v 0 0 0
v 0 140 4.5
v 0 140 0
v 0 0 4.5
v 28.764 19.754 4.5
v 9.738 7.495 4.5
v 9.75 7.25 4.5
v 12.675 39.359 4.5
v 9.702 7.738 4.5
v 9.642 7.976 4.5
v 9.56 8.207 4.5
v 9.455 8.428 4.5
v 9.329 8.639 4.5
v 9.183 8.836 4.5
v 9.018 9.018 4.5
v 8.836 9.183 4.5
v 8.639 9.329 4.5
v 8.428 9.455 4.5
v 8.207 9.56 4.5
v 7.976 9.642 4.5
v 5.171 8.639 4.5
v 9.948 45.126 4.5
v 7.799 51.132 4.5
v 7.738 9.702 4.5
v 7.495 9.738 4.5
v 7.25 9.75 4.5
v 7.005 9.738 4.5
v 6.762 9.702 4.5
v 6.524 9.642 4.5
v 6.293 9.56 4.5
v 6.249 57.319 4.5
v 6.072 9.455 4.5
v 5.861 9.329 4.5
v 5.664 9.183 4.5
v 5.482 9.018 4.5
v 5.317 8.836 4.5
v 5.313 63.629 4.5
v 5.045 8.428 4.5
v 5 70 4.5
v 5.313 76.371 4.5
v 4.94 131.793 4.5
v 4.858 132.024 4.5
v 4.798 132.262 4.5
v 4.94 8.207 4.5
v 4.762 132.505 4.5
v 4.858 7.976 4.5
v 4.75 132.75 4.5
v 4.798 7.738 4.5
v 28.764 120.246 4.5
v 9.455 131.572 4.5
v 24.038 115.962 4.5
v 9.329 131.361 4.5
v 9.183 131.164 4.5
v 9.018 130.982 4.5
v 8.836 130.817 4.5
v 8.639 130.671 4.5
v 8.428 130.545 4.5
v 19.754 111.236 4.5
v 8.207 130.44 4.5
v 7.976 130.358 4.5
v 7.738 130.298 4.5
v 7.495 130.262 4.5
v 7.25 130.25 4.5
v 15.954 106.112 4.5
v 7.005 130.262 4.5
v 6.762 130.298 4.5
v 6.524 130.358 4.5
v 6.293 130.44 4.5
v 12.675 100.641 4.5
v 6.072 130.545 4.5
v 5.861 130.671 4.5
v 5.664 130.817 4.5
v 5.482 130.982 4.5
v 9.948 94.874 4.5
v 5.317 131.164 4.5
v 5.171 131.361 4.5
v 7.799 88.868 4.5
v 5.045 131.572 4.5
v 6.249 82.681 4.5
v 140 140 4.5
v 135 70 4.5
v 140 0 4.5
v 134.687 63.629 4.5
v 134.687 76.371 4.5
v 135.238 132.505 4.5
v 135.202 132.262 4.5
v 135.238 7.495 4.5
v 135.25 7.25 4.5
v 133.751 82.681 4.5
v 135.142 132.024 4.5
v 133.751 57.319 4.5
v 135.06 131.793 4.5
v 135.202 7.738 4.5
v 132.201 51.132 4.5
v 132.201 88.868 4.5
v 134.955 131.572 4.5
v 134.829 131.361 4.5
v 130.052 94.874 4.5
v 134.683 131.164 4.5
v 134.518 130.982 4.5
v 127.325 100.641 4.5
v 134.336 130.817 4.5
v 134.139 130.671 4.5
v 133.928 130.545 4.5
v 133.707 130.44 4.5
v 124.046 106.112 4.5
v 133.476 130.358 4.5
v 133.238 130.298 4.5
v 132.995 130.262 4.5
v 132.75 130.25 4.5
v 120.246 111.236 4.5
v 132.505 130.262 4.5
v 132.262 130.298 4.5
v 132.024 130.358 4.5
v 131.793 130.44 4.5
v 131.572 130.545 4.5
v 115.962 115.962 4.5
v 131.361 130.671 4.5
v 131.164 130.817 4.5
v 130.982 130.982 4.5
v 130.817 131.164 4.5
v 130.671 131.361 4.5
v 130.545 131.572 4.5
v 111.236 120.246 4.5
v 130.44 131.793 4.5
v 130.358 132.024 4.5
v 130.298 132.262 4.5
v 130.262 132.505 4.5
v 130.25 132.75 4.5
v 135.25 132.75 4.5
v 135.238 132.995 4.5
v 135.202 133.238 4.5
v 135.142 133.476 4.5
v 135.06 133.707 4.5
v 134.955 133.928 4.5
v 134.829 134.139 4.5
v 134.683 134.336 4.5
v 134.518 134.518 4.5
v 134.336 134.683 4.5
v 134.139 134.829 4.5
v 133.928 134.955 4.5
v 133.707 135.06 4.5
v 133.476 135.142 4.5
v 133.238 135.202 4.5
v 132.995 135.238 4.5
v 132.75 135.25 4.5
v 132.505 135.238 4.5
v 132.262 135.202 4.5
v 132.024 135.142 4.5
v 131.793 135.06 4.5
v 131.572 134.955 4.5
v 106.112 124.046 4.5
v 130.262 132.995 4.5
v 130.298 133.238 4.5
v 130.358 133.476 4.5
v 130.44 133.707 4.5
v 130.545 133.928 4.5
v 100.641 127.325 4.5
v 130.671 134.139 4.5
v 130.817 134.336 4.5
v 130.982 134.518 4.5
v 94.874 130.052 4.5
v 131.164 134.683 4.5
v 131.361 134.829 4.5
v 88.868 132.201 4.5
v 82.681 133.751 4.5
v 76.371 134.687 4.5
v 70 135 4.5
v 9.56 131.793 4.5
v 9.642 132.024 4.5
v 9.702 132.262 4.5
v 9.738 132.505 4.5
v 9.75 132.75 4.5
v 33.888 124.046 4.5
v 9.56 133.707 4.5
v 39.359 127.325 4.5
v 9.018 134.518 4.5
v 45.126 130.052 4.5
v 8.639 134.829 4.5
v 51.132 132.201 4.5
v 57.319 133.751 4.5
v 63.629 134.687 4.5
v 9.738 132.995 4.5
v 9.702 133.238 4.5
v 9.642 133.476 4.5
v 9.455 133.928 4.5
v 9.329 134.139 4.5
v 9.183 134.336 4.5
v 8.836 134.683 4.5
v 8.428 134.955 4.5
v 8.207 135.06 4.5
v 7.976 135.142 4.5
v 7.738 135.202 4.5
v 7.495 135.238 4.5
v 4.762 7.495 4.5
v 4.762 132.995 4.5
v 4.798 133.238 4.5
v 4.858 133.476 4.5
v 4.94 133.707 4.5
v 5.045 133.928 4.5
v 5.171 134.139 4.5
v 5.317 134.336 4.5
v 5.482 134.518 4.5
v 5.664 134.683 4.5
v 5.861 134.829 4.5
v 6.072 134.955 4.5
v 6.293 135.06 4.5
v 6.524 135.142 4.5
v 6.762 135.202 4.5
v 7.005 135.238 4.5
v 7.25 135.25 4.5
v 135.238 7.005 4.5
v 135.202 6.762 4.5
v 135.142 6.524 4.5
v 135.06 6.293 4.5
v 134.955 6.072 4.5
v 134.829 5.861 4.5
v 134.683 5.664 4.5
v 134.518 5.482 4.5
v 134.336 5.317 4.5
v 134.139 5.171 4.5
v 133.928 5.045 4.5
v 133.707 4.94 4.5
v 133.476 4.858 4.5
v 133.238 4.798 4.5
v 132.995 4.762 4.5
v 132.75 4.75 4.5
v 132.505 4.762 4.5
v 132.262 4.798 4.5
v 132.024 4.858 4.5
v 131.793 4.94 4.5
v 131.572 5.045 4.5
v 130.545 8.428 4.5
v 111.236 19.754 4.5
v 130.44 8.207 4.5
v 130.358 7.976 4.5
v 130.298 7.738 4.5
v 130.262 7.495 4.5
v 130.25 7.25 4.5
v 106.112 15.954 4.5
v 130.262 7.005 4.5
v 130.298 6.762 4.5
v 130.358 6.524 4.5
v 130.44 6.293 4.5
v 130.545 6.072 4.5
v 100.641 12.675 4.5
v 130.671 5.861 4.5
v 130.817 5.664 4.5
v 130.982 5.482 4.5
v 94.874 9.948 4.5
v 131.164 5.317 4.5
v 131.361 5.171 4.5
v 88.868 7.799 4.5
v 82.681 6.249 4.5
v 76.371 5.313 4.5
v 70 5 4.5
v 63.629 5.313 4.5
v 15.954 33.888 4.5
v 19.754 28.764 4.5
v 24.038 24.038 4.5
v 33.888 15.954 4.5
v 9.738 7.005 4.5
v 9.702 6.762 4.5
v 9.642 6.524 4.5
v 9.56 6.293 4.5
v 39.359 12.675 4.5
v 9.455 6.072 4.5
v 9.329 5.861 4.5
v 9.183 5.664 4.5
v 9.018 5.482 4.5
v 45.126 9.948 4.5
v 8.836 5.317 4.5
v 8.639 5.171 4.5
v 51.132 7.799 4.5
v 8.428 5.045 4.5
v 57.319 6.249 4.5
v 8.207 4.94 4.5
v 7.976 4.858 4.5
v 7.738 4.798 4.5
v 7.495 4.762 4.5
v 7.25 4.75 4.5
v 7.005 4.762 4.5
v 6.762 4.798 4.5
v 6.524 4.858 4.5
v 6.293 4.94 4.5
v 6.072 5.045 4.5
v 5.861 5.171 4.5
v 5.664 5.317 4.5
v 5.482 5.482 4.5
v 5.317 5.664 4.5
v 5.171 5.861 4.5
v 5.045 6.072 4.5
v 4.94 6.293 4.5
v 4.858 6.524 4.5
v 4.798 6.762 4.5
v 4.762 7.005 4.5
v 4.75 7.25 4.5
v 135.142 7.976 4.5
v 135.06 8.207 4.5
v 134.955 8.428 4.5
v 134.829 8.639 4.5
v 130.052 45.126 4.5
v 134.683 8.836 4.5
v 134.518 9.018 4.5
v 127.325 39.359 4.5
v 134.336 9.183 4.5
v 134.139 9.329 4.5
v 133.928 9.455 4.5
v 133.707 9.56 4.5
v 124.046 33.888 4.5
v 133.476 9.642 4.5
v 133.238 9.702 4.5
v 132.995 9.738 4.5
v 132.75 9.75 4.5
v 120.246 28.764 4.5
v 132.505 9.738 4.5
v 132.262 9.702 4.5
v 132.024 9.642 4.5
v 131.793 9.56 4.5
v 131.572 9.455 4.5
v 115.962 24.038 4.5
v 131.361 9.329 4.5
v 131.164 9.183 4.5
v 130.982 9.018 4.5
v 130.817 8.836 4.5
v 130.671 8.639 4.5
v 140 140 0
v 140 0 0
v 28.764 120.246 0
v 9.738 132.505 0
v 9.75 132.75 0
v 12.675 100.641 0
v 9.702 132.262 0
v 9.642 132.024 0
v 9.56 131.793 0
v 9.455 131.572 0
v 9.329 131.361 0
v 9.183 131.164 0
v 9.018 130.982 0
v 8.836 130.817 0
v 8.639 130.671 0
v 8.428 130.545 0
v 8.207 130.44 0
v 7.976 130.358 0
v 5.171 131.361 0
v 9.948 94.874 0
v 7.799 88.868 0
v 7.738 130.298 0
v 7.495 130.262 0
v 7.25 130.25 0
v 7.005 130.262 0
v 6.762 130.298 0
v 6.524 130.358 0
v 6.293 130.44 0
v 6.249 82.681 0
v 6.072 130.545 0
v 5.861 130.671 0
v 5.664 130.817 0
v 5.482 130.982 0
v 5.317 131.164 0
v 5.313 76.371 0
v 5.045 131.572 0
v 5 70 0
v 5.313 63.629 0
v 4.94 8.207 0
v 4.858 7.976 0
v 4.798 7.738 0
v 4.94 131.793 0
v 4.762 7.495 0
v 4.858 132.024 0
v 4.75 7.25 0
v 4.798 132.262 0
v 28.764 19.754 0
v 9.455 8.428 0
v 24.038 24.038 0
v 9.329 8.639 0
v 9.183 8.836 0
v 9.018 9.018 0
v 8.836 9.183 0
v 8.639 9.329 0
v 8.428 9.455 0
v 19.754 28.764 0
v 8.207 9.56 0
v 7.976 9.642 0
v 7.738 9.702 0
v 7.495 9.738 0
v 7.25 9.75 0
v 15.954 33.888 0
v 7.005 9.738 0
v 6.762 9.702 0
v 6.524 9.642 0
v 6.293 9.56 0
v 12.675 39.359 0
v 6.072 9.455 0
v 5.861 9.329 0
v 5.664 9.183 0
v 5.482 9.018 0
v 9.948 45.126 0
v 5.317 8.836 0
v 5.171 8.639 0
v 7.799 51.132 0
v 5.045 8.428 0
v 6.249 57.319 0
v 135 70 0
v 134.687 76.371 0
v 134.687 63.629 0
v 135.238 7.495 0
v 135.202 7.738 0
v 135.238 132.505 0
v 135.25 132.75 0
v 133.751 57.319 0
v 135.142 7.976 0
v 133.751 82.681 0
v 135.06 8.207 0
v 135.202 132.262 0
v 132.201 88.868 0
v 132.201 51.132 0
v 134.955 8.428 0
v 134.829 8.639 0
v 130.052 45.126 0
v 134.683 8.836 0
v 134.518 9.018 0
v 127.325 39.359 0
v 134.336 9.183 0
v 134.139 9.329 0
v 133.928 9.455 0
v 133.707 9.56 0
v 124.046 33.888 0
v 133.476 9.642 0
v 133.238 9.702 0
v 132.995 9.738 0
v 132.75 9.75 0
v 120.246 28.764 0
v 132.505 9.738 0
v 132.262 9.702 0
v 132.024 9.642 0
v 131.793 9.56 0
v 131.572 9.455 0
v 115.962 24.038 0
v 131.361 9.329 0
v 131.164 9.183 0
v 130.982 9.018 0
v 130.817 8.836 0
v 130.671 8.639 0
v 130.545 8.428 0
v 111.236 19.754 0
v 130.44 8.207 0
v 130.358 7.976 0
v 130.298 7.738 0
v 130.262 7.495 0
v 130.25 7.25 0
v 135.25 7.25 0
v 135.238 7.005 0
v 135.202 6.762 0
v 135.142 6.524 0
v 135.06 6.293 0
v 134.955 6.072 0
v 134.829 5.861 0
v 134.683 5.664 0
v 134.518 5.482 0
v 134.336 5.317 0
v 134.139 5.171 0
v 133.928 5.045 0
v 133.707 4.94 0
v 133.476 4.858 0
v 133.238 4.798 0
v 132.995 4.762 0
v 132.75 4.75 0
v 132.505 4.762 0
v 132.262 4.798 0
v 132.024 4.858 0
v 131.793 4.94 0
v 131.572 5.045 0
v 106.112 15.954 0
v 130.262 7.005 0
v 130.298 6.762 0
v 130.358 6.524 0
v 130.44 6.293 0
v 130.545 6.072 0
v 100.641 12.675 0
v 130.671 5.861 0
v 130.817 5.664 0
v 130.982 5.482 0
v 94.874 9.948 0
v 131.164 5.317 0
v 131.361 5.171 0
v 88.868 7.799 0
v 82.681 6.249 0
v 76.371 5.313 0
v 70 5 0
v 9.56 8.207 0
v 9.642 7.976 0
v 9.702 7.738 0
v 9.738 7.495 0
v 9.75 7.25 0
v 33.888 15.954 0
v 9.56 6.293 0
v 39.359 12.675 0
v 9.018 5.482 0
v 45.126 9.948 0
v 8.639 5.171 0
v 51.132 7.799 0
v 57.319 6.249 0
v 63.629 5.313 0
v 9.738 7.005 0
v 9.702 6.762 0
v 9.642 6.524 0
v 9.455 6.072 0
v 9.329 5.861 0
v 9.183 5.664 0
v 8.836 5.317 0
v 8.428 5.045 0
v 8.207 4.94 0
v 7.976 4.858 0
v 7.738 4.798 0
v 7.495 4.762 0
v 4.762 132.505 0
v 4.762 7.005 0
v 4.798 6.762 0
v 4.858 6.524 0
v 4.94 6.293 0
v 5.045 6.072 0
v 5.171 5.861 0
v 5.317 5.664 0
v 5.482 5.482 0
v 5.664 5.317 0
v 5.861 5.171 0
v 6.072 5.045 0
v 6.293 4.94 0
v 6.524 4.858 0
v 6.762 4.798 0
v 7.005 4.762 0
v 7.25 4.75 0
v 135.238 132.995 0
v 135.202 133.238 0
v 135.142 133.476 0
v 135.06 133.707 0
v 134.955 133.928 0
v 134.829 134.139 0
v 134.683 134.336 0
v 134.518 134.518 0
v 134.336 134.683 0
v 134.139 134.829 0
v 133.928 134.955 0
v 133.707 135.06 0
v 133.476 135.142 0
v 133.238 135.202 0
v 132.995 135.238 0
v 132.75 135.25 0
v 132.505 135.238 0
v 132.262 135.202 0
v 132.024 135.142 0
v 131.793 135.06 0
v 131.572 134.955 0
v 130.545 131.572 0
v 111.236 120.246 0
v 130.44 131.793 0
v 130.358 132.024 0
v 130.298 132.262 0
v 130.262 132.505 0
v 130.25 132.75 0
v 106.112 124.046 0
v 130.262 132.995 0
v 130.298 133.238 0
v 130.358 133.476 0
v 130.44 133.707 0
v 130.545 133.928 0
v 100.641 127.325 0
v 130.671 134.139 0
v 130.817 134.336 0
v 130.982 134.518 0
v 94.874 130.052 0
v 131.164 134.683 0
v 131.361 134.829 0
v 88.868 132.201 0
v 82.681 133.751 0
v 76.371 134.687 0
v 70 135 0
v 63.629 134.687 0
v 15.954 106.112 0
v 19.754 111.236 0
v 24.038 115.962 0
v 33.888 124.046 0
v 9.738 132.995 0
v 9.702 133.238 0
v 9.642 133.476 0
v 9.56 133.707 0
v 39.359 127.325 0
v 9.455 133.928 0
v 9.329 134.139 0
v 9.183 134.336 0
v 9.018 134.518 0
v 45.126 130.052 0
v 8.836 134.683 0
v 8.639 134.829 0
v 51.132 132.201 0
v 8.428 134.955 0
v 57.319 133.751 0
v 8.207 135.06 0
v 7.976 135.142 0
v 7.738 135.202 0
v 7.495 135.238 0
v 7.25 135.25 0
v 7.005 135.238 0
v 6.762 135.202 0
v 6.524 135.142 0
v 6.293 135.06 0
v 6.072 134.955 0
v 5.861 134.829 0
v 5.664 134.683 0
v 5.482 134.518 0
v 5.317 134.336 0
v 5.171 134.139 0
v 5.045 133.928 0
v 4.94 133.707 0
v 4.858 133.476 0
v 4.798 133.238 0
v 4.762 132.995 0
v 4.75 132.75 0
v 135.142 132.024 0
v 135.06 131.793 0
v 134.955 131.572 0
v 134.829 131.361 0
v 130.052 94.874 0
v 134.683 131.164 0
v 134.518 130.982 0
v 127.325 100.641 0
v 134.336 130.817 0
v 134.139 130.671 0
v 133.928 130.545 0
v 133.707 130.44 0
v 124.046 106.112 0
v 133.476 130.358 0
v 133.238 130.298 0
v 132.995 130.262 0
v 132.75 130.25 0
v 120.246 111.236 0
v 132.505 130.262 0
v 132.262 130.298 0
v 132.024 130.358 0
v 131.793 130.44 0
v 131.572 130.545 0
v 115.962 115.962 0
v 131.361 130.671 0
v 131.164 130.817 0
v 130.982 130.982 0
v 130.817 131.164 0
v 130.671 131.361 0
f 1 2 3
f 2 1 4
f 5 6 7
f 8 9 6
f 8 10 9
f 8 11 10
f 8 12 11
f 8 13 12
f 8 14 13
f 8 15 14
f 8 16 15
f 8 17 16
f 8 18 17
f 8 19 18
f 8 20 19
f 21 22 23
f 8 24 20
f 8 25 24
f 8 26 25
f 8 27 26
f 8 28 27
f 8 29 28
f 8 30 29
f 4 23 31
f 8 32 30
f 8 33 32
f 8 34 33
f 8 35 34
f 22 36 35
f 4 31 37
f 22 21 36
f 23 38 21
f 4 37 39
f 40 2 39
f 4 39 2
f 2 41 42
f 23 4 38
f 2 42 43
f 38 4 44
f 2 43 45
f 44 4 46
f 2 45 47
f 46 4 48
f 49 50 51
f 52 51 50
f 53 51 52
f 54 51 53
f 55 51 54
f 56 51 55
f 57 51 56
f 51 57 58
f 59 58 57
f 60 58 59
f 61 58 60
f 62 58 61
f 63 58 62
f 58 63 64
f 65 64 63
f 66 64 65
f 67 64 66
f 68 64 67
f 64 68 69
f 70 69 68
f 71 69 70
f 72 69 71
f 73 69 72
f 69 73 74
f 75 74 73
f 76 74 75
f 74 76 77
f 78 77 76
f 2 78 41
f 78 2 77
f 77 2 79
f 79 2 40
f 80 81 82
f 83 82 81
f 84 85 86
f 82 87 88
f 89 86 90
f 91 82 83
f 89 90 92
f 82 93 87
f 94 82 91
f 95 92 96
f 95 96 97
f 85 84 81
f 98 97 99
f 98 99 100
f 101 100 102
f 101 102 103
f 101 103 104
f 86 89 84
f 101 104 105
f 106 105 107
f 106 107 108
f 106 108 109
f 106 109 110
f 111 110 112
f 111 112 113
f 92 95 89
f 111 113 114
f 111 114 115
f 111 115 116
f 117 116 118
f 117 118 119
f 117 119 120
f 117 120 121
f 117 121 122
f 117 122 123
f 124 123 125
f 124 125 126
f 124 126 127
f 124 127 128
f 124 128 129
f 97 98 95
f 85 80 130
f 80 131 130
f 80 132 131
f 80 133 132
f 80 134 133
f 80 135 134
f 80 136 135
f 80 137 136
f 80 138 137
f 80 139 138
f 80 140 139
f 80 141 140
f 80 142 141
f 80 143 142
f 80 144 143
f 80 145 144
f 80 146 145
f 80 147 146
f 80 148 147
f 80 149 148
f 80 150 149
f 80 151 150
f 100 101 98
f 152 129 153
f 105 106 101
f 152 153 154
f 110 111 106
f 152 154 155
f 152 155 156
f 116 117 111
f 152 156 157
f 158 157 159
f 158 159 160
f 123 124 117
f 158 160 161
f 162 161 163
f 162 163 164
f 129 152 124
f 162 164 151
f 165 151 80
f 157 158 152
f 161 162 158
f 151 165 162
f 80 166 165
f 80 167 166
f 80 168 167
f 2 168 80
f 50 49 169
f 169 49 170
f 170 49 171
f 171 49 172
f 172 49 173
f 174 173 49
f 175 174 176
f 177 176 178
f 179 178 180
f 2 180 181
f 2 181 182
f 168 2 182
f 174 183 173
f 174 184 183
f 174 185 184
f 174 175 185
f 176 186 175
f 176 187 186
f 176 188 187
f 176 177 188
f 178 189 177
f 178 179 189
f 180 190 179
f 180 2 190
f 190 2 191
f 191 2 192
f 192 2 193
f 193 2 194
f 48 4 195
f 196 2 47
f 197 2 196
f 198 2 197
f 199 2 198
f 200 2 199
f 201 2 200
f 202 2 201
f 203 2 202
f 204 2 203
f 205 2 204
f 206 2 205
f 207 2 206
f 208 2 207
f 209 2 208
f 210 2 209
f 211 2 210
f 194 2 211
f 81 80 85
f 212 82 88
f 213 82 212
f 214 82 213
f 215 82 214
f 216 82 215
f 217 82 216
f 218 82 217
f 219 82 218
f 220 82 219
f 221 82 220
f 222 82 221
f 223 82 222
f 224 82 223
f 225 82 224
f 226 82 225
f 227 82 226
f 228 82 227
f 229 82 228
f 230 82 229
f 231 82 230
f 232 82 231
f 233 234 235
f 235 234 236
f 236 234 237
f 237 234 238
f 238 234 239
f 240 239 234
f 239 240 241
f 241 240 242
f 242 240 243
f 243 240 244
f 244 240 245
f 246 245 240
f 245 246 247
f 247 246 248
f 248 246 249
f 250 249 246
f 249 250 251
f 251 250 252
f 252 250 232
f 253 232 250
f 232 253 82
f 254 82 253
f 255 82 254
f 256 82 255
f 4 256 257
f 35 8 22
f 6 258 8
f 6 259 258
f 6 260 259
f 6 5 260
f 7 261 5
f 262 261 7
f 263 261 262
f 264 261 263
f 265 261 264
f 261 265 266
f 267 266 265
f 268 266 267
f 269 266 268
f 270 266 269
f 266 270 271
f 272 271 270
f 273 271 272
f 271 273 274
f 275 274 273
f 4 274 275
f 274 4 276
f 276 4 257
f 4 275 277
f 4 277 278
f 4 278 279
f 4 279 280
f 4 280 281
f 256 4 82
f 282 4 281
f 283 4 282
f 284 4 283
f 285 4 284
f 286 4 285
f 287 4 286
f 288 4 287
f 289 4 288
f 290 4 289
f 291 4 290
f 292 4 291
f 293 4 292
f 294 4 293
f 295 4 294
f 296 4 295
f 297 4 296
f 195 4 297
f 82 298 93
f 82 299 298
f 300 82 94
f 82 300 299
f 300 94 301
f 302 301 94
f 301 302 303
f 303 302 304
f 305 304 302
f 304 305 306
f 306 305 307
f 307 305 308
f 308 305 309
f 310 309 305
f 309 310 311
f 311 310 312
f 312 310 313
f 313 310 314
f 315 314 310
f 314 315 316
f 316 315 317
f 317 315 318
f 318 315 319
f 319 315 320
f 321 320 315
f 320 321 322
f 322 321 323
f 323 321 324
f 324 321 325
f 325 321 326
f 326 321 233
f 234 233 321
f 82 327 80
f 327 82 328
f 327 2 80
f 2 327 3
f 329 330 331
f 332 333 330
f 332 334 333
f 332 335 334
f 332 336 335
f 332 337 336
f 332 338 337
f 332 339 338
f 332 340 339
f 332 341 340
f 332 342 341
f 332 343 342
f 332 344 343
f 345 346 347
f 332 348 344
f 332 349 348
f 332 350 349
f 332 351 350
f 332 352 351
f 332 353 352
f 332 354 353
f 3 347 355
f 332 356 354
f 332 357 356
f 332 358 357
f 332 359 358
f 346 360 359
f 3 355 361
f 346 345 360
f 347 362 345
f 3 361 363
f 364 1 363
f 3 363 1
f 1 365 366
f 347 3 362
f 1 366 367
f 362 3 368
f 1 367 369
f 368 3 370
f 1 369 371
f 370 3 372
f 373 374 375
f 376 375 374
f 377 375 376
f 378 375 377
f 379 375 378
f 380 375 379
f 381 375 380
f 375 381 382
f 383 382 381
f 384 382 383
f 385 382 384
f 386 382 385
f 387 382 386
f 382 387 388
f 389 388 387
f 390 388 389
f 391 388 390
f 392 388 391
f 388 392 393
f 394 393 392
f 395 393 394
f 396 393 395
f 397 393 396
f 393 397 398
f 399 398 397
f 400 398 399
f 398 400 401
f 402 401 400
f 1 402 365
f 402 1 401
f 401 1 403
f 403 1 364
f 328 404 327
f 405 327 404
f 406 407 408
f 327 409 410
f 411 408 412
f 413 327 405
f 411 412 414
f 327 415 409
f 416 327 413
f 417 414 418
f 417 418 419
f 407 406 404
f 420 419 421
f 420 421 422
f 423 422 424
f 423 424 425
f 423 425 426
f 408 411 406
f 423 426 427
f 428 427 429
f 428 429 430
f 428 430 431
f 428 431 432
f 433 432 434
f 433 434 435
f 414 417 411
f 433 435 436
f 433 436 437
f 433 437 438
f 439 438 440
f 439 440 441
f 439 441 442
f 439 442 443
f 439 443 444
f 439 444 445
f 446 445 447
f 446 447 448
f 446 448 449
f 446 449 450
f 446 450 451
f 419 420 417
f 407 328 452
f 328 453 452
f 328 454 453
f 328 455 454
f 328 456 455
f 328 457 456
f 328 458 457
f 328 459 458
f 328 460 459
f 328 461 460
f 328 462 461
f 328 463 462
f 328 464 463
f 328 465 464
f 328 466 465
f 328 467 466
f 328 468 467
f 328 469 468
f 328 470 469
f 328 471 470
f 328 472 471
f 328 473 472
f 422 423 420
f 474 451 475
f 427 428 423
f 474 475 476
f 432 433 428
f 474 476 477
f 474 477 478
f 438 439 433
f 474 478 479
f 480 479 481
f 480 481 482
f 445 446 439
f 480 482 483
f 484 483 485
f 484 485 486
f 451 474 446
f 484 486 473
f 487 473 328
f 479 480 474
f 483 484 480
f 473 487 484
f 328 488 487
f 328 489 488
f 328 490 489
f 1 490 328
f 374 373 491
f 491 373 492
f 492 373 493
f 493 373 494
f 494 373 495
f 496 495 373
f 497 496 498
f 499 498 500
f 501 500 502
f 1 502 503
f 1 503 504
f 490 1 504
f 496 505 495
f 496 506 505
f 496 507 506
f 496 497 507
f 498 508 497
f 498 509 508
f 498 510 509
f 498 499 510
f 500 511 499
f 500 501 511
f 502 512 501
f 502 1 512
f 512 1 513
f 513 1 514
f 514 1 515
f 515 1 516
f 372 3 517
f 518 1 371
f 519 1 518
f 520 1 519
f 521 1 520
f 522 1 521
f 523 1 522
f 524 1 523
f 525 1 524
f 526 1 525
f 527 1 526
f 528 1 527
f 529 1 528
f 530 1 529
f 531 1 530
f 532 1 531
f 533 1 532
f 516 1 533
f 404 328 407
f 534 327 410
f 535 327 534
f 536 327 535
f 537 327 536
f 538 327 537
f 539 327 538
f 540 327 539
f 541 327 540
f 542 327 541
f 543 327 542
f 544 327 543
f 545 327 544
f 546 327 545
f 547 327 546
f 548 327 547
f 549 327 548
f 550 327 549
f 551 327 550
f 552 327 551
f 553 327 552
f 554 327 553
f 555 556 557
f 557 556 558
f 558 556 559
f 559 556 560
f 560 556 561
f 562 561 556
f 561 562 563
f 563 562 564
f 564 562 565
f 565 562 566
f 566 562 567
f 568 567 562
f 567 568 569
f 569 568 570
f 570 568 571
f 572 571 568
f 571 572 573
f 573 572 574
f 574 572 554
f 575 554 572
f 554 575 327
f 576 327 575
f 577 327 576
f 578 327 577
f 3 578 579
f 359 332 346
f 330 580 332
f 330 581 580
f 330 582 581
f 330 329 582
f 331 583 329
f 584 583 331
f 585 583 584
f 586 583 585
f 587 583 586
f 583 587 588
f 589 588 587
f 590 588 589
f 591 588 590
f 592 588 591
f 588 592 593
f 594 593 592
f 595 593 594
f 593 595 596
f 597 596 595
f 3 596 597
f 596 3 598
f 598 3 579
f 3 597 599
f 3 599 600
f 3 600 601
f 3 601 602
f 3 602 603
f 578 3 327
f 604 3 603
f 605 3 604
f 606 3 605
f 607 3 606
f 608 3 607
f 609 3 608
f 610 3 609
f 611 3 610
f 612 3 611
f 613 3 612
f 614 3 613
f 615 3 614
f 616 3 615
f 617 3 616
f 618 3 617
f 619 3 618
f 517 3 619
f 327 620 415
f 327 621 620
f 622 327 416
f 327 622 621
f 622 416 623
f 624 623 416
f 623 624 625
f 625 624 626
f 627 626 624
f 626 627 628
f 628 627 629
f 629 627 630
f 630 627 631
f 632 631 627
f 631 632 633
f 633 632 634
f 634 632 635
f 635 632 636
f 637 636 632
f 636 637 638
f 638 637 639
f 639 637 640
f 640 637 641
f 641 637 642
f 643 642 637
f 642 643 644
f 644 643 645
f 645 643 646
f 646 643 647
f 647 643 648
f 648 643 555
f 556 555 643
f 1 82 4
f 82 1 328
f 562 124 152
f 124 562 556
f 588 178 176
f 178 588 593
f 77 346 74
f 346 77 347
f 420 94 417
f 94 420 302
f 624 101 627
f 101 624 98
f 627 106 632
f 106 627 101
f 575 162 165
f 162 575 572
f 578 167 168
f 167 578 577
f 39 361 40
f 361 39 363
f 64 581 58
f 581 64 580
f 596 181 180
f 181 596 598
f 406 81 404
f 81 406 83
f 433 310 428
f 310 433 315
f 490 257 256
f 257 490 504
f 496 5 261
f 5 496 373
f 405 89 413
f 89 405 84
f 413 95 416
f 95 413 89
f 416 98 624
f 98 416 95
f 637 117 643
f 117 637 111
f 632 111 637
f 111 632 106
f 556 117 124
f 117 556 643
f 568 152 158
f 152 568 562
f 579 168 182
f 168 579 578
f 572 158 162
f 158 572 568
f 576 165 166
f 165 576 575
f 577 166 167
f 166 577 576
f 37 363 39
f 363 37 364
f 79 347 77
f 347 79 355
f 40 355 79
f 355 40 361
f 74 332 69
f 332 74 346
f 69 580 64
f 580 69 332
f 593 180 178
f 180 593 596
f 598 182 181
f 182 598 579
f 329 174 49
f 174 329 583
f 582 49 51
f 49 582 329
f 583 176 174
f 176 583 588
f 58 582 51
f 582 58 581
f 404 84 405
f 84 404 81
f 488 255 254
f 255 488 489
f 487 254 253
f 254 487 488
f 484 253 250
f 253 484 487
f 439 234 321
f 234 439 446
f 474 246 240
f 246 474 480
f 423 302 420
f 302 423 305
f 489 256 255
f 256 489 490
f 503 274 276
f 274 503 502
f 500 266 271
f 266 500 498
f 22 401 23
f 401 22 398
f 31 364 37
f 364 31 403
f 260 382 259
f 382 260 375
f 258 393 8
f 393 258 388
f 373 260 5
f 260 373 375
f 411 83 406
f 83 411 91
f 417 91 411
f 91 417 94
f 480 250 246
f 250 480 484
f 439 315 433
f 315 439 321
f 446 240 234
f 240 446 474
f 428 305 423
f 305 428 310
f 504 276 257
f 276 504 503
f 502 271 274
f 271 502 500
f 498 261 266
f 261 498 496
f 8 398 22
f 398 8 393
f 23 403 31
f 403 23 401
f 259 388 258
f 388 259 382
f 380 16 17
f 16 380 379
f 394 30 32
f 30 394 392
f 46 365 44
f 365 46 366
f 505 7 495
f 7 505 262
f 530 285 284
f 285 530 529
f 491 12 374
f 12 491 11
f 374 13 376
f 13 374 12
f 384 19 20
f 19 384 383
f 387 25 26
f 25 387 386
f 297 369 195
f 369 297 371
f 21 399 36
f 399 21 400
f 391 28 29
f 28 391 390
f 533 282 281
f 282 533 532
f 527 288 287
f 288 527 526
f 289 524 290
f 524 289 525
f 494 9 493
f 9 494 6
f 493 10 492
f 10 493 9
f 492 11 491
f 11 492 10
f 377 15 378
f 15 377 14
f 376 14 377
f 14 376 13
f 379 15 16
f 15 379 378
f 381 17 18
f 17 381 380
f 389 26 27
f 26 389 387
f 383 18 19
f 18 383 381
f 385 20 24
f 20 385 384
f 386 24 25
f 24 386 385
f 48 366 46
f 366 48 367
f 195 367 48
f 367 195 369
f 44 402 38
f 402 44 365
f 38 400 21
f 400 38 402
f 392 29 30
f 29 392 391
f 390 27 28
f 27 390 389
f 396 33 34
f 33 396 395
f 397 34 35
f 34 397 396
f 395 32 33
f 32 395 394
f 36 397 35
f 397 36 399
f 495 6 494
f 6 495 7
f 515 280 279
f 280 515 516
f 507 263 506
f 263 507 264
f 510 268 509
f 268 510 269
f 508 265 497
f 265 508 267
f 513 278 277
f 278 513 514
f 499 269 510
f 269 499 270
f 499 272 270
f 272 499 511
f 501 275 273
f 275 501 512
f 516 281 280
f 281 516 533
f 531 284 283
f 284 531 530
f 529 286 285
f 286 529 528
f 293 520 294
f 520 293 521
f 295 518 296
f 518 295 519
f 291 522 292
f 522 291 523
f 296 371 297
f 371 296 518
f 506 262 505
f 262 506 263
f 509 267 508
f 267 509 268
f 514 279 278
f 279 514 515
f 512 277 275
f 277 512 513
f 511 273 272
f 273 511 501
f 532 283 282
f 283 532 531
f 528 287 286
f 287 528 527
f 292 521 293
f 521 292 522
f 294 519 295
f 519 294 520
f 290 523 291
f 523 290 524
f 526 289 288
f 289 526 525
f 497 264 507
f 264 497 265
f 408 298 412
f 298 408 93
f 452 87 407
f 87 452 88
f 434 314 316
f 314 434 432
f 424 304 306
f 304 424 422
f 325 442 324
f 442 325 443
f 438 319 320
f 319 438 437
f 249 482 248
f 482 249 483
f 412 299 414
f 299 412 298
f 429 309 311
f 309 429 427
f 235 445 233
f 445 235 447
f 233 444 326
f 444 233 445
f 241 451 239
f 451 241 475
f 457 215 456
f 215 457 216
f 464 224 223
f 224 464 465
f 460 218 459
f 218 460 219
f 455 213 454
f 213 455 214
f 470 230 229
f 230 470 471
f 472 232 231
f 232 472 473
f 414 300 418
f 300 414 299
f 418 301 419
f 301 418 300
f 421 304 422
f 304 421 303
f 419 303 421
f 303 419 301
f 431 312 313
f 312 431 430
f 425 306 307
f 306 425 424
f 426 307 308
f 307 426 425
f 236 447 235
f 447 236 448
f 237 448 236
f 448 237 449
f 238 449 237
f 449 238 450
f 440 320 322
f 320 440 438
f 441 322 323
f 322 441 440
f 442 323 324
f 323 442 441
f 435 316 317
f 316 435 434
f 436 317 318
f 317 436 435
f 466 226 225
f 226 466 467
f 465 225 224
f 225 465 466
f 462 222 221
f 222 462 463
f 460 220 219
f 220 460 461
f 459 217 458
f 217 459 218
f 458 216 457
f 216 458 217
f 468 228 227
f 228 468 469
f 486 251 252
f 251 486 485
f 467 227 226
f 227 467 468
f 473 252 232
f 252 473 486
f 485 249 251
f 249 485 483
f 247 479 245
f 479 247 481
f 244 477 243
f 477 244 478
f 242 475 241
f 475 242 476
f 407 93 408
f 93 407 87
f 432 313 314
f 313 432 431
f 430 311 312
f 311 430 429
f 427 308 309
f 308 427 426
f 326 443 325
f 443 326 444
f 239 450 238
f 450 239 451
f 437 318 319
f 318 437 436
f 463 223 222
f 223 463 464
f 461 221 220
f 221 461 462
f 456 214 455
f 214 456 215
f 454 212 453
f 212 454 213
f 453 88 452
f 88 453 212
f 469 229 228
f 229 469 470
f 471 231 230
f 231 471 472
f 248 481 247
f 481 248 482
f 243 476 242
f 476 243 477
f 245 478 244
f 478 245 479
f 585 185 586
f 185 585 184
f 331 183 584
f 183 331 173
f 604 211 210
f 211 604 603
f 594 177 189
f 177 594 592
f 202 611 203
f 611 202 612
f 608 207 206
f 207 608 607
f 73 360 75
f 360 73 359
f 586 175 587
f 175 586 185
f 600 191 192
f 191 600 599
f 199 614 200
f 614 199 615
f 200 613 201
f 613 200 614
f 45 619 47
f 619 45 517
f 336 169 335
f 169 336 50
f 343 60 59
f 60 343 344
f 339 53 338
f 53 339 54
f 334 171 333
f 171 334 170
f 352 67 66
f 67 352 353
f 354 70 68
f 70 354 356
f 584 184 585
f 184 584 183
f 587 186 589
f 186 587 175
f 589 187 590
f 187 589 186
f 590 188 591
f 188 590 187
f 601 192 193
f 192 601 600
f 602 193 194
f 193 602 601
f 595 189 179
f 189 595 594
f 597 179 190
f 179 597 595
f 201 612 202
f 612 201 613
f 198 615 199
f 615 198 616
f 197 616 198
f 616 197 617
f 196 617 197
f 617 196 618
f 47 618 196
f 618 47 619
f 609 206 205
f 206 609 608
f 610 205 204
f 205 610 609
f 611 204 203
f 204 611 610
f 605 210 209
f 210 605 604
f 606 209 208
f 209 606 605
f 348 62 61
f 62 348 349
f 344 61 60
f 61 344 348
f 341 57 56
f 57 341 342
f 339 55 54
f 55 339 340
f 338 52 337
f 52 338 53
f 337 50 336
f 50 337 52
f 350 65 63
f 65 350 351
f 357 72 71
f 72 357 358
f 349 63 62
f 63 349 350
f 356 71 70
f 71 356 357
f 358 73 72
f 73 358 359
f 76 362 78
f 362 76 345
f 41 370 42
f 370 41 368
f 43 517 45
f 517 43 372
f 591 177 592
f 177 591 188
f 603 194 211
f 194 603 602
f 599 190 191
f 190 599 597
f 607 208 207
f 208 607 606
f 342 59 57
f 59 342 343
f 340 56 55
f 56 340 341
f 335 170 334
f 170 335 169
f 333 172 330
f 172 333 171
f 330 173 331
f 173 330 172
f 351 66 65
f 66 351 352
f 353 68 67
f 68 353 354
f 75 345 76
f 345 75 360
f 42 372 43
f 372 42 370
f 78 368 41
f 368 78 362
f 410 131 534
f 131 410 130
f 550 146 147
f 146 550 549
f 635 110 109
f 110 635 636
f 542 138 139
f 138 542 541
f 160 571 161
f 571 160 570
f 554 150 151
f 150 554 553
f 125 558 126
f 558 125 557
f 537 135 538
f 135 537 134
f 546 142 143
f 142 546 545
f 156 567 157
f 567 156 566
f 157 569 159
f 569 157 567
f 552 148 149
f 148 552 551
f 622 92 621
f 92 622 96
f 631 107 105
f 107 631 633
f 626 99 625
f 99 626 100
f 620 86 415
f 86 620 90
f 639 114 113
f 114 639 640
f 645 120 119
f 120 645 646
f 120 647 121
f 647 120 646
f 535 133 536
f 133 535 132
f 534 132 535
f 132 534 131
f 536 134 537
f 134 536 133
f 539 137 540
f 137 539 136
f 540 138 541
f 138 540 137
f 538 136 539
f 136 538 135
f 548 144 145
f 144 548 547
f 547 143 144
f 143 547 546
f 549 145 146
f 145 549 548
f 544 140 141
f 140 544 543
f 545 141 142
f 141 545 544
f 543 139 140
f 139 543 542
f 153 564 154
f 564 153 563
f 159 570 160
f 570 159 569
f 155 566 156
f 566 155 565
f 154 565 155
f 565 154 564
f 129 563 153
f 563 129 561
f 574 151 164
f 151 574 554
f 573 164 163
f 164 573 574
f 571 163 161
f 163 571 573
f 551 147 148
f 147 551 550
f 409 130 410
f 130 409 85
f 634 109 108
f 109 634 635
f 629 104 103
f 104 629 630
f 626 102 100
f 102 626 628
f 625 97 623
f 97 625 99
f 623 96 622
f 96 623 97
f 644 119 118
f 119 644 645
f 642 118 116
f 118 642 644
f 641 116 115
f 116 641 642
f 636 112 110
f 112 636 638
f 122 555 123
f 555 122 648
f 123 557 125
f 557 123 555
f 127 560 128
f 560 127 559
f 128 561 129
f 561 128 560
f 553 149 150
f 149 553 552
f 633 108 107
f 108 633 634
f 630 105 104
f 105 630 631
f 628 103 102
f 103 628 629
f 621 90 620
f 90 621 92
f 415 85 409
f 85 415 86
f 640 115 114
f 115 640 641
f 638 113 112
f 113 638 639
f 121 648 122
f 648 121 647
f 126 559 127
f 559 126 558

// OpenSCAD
module screwHole(diameter,height=6) {
    cylinder(d=diameter,h=height,$fn=64);
}

difference() {
    totalWidth = 140;
    holeDiameter = 130;
    screwDistance = 7.25;

    cube([totalWidth,totalWidth,4.5]);
    translate([totalWidth/2,totalWidth/2,-1]) screwHole(holeDiameter);
    translate([screwDistance,screwDistance,-1]) screwHole(5);
    translate([totalWidth-screwDistance,screwDistance,-1]) screwHole(5);
    translate([screwDistance,totalWidth-screwDistance,-1]) screwHole(5);
    translate([totalWidth-screwDistance,totalWidth-screwDistance,-1]) screwHole(5);
}
